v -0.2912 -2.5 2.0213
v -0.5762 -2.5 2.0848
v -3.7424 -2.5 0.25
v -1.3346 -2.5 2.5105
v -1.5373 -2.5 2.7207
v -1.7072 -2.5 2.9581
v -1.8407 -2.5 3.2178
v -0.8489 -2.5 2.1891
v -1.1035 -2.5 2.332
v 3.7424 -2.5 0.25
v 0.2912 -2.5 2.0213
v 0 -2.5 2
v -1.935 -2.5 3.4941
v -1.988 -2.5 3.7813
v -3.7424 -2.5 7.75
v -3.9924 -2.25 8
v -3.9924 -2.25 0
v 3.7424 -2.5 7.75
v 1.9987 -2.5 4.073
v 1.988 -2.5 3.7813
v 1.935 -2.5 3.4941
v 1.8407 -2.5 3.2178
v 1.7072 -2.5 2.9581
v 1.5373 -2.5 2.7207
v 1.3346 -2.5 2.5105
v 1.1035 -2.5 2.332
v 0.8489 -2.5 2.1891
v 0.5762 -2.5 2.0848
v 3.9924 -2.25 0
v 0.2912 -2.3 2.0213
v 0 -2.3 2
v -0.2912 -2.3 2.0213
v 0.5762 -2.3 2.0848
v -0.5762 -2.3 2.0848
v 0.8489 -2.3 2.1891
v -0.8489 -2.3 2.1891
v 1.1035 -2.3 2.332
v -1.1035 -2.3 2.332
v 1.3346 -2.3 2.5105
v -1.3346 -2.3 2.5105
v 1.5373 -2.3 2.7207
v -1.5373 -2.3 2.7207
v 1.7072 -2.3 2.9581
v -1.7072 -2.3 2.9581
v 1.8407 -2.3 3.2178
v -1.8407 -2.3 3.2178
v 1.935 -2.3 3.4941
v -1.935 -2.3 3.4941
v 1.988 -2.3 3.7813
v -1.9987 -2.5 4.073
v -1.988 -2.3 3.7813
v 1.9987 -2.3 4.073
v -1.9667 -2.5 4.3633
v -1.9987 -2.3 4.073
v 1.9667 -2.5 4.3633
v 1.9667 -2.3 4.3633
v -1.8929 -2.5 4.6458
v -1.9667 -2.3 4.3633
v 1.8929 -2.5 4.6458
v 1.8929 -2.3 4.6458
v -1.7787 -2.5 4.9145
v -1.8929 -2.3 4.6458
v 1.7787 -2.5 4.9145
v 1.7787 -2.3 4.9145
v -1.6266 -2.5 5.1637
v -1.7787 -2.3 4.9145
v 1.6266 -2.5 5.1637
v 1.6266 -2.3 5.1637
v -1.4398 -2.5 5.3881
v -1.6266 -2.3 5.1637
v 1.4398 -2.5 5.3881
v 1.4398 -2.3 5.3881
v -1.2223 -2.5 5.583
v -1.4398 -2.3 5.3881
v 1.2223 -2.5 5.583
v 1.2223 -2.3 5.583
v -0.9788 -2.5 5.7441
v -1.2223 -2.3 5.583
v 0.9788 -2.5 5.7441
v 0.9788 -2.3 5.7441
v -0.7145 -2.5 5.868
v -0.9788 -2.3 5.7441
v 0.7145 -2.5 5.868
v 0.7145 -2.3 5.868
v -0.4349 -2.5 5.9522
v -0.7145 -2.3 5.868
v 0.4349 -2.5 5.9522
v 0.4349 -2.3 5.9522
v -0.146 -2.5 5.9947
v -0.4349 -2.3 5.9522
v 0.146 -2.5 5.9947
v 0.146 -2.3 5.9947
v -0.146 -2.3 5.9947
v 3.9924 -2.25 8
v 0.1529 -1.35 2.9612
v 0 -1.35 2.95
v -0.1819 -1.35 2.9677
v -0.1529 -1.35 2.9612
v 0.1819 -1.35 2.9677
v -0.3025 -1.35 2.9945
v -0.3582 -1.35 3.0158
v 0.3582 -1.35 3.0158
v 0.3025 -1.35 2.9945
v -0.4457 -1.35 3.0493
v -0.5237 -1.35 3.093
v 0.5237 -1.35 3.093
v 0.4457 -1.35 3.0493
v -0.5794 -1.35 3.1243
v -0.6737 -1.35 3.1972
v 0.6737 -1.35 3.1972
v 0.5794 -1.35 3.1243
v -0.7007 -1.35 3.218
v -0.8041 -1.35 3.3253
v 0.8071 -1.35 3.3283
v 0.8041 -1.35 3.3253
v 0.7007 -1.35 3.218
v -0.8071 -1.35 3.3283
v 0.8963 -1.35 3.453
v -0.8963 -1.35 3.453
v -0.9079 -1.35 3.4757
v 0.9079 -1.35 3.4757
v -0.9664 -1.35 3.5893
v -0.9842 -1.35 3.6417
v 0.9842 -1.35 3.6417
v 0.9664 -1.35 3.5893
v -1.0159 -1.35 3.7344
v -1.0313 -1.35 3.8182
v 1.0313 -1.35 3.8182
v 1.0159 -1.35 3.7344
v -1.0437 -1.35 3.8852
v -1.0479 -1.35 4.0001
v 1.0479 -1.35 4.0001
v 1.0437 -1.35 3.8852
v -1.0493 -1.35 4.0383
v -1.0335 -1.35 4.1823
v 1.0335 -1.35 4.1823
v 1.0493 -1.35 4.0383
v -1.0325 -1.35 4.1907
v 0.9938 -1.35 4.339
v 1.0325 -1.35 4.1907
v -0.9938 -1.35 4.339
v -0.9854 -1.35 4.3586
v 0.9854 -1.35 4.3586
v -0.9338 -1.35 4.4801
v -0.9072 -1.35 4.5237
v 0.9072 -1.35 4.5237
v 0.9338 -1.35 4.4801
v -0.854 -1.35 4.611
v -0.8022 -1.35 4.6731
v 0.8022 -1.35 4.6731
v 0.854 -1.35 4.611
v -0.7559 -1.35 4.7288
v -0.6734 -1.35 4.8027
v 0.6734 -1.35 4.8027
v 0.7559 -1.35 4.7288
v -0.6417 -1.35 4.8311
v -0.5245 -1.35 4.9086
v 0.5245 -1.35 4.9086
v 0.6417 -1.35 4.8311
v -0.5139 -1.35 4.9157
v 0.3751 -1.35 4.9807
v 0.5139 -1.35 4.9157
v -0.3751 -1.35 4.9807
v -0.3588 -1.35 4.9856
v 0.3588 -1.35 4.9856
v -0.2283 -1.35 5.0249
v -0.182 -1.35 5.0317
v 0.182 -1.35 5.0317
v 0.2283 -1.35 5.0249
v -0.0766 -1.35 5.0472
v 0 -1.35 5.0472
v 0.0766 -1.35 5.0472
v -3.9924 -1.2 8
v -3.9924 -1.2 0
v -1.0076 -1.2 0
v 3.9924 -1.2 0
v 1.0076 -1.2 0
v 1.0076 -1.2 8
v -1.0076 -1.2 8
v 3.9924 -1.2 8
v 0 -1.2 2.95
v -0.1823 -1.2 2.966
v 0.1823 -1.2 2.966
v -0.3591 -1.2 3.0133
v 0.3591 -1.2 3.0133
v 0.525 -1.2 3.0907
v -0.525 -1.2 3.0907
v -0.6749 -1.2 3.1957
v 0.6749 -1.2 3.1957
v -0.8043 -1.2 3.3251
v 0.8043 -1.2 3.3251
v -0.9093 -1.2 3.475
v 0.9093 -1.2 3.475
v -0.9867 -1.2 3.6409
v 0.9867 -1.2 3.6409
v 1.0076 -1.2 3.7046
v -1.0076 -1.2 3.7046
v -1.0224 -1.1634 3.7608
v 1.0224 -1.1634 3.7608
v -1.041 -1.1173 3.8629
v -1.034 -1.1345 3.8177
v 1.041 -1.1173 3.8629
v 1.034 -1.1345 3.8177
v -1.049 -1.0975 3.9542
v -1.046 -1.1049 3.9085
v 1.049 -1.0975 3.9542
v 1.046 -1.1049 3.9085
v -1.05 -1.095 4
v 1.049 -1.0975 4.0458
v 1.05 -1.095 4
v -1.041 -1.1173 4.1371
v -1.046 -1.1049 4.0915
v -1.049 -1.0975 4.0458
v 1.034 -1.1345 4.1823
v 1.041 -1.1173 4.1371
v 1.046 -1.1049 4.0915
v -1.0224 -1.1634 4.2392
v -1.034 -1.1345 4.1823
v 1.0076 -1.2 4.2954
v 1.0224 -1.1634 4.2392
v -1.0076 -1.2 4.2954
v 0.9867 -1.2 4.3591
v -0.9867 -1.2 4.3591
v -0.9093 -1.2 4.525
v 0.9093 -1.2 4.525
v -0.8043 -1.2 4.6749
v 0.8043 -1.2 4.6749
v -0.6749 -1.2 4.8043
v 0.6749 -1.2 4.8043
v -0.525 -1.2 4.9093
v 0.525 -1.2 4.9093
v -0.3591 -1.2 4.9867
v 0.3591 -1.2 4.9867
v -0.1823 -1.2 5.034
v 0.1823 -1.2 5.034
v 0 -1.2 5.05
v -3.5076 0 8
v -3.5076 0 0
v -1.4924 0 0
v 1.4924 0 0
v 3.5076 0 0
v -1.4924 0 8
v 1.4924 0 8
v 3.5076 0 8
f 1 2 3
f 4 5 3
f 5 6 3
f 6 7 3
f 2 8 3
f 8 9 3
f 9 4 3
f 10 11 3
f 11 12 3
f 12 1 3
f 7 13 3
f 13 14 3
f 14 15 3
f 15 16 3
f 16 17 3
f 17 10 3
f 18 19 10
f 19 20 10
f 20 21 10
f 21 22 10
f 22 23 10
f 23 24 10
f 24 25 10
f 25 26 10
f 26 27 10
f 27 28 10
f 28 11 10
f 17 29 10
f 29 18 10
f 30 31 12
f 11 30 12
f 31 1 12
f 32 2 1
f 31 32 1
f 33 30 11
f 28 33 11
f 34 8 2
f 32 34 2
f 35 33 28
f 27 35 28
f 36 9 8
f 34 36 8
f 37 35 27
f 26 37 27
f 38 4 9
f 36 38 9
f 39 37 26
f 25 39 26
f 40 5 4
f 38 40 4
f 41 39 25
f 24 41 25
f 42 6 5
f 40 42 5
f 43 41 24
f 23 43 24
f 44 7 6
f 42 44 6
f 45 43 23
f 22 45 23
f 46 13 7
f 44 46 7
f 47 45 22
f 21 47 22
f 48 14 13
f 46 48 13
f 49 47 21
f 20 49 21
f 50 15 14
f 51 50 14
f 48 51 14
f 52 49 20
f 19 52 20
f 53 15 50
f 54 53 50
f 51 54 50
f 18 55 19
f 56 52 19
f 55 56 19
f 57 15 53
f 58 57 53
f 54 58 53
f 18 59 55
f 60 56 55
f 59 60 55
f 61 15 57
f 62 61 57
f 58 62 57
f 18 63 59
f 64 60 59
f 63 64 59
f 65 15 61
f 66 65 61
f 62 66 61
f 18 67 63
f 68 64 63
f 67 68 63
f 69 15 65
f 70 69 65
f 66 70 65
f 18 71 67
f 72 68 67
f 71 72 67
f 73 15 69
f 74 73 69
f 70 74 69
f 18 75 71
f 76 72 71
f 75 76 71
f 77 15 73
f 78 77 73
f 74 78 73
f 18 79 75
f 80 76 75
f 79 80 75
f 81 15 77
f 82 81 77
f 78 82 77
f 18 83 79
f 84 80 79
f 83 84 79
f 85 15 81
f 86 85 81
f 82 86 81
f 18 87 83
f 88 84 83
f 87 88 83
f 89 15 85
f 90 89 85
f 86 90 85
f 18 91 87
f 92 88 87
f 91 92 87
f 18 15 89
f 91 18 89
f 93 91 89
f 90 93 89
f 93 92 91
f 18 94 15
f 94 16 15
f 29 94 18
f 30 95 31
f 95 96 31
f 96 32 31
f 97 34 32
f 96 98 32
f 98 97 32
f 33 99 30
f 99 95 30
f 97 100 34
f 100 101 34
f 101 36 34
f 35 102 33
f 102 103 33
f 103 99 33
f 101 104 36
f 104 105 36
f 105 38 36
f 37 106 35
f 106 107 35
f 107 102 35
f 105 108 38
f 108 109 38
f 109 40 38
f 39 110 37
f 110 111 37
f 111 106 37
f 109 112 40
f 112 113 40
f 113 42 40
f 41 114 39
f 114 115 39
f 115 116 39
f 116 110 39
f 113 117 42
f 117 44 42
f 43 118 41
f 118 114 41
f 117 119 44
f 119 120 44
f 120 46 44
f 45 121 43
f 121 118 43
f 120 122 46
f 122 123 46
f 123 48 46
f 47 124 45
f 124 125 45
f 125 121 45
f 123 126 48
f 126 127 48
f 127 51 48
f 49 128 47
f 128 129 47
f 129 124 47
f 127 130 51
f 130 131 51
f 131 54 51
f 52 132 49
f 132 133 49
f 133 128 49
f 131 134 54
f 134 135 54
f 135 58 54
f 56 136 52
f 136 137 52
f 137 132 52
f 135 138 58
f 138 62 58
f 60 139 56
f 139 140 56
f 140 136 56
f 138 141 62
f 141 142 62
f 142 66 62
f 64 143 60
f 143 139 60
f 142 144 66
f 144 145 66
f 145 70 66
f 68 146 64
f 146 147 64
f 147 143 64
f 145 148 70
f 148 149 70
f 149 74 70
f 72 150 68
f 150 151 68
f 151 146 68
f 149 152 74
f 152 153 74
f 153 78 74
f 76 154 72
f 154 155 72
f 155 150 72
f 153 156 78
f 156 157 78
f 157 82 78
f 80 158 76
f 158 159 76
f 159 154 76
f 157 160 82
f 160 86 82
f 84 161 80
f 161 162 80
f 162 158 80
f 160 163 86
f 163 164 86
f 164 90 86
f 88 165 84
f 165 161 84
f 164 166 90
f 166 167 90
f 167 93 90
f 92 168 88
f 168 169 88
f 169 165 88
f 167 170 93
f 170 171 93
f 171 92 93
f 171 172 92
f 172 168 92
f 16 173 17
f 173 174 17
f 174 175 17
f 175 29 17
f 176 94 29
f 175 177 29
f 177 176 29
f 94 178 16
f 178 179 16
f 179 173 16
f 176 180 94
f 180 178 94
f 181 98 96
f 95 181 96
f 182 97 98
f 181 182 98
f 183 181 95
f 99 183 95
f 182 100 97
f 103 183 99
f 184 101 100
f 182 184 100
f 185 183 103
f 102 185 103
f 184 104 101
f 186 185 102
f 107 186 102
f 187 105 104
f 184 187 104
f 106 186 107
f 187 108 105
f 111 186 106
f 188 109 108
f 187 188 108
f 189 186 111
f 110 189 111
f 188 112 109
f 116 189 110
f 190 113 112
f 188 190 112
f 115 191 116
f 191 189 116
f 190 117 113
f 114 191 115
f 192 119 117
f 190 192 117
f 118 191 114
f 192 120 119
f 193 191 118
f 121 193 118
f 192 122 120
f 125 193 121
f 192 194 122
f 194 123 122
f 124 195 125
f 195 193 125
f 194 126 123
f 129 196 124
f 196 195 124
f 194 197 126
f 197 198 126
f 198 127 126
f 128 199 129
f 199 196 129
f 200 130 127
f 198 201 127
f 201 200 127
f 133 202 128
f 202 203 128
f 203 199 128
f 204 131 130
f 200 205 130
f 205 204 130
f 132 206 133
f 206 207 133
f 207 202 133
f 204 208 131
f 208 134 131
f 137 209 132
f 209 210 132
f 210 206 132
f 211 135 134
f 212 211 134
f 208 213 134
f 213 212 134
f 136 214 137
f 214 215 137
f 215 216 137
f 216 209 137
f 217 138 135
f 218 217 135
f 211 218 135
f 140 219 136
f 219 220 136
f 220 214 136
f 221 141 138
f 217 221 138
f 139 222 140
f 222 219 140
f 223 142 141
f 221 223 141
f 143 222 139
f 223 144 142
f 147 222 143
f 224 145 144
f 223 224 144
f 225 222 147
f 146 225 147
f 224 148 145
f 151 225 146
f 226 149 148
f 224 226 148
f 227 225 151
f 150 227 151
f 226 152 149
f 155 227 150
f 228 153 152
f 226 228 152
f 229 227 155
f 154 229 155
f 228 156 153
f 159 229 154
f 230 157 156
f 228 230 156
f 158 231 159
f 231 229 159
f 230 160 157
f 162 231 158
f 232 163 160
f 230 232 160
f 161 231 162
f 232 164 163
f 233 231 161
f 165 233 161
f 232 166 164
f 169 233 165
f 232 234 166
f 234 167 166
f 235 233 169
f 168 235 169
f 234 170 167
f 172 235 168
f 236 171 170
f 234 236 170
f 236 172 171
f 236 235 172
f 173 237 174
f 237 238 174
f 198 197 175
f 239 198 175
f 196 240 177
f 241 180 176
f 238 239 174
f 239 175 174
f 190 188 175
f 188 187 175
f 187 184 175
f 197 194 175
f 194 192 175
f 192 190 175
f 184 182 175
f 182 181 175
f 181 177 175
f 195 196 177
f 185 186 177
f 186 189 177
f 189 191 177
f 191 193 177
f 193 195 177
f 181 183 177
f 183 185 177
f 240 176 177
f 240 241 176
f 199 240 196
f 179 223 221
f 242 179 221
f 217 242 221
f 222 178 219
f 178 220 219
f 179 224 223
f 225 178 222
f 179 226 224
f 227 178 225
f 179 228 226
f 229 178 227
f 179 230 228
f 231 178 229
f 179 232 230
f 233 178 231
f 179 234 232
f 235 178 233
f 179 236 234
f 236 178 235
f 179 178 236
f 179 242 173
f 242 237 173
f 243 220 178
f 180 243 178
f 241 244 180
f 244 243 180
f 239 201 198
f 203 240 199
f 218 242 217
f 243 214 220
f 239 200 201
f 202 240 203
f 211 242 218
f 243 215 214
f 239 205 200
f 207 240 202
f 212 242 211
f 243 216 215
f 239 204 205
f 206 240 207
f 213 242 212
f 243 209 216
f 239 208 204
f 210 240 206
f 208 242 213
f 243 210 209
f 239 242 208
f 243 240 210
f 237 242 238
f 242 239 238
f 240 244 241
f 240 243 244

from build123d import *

# Parameters (mm, degrees)
EXTRUDE_1_DEPTH     = 8
SKETCH_2_R          = 1.05
CUT_EXTRUDE_1_DEPTH = 10.283823749
CHAMFER_1_SIZE      = 0.25


with BuildPart() as part:
    # ｽｹｯﾁ1 → ﾎﾞｽ - 押し出し1 (new body)
    with BuildSketch(Plane.XY):
        Polygon((-3.507584264, 0), (-1.492415736, 0), (-1.007584264, -1.2), (1.007584264, -1.2), (1.492415736, 0), (3.507584264, 0), (3.992415736, -1.2), (3.992415736, -2.5), (-3.992415736, -2.5), (-3.992415736, -1.2), align=None)
    extrude(amount=EXTRUDE_1_DEPTH)

    # ｽｹｯﾁ2 → ｶｯﾄ - 押し出し1 (cut, through all)
    with BuildSketch(Plane.XZ.offset(2.5)):
        with Locations((0, 4)):
            Circle(SKETCH_2_R)
    extrude(amount=-CUT_EXTRUDE_1_DEPTH, mode=Mode.SUBTRACT)

    # ｽｹｯﾁ4 → ｶｯﾄ - 回転1 (revolve, cut)
    with BuildSketch(Plane(origin=(0, 0, 0), x_dir=(0, 0, -1), z_dir=(1, 0, 0))):
        Polygon((-4, -2.5), (-2, -2.5), (-2, -2.3), (-3, -1.3), (-4, -1.3), align=None)
    revolve(axis=Axis((0, -2.5, 4), (0, 1, 0)), mode=Mode.SUBTRACT)

    # 面取り1
    chamfer_1_edges = [part.edges().sort_by_distance(p)[0] for p in [
        (3.992415736, -2.5, 4),
        (-3.992415736, -2.5, 4),
        (0, -2.5, 8),
        (0, -2.5, 0),
    ]]
    chamfer(chamfer_1_edges, length=CHAMFER_1_SIZE)


solid = part.part
